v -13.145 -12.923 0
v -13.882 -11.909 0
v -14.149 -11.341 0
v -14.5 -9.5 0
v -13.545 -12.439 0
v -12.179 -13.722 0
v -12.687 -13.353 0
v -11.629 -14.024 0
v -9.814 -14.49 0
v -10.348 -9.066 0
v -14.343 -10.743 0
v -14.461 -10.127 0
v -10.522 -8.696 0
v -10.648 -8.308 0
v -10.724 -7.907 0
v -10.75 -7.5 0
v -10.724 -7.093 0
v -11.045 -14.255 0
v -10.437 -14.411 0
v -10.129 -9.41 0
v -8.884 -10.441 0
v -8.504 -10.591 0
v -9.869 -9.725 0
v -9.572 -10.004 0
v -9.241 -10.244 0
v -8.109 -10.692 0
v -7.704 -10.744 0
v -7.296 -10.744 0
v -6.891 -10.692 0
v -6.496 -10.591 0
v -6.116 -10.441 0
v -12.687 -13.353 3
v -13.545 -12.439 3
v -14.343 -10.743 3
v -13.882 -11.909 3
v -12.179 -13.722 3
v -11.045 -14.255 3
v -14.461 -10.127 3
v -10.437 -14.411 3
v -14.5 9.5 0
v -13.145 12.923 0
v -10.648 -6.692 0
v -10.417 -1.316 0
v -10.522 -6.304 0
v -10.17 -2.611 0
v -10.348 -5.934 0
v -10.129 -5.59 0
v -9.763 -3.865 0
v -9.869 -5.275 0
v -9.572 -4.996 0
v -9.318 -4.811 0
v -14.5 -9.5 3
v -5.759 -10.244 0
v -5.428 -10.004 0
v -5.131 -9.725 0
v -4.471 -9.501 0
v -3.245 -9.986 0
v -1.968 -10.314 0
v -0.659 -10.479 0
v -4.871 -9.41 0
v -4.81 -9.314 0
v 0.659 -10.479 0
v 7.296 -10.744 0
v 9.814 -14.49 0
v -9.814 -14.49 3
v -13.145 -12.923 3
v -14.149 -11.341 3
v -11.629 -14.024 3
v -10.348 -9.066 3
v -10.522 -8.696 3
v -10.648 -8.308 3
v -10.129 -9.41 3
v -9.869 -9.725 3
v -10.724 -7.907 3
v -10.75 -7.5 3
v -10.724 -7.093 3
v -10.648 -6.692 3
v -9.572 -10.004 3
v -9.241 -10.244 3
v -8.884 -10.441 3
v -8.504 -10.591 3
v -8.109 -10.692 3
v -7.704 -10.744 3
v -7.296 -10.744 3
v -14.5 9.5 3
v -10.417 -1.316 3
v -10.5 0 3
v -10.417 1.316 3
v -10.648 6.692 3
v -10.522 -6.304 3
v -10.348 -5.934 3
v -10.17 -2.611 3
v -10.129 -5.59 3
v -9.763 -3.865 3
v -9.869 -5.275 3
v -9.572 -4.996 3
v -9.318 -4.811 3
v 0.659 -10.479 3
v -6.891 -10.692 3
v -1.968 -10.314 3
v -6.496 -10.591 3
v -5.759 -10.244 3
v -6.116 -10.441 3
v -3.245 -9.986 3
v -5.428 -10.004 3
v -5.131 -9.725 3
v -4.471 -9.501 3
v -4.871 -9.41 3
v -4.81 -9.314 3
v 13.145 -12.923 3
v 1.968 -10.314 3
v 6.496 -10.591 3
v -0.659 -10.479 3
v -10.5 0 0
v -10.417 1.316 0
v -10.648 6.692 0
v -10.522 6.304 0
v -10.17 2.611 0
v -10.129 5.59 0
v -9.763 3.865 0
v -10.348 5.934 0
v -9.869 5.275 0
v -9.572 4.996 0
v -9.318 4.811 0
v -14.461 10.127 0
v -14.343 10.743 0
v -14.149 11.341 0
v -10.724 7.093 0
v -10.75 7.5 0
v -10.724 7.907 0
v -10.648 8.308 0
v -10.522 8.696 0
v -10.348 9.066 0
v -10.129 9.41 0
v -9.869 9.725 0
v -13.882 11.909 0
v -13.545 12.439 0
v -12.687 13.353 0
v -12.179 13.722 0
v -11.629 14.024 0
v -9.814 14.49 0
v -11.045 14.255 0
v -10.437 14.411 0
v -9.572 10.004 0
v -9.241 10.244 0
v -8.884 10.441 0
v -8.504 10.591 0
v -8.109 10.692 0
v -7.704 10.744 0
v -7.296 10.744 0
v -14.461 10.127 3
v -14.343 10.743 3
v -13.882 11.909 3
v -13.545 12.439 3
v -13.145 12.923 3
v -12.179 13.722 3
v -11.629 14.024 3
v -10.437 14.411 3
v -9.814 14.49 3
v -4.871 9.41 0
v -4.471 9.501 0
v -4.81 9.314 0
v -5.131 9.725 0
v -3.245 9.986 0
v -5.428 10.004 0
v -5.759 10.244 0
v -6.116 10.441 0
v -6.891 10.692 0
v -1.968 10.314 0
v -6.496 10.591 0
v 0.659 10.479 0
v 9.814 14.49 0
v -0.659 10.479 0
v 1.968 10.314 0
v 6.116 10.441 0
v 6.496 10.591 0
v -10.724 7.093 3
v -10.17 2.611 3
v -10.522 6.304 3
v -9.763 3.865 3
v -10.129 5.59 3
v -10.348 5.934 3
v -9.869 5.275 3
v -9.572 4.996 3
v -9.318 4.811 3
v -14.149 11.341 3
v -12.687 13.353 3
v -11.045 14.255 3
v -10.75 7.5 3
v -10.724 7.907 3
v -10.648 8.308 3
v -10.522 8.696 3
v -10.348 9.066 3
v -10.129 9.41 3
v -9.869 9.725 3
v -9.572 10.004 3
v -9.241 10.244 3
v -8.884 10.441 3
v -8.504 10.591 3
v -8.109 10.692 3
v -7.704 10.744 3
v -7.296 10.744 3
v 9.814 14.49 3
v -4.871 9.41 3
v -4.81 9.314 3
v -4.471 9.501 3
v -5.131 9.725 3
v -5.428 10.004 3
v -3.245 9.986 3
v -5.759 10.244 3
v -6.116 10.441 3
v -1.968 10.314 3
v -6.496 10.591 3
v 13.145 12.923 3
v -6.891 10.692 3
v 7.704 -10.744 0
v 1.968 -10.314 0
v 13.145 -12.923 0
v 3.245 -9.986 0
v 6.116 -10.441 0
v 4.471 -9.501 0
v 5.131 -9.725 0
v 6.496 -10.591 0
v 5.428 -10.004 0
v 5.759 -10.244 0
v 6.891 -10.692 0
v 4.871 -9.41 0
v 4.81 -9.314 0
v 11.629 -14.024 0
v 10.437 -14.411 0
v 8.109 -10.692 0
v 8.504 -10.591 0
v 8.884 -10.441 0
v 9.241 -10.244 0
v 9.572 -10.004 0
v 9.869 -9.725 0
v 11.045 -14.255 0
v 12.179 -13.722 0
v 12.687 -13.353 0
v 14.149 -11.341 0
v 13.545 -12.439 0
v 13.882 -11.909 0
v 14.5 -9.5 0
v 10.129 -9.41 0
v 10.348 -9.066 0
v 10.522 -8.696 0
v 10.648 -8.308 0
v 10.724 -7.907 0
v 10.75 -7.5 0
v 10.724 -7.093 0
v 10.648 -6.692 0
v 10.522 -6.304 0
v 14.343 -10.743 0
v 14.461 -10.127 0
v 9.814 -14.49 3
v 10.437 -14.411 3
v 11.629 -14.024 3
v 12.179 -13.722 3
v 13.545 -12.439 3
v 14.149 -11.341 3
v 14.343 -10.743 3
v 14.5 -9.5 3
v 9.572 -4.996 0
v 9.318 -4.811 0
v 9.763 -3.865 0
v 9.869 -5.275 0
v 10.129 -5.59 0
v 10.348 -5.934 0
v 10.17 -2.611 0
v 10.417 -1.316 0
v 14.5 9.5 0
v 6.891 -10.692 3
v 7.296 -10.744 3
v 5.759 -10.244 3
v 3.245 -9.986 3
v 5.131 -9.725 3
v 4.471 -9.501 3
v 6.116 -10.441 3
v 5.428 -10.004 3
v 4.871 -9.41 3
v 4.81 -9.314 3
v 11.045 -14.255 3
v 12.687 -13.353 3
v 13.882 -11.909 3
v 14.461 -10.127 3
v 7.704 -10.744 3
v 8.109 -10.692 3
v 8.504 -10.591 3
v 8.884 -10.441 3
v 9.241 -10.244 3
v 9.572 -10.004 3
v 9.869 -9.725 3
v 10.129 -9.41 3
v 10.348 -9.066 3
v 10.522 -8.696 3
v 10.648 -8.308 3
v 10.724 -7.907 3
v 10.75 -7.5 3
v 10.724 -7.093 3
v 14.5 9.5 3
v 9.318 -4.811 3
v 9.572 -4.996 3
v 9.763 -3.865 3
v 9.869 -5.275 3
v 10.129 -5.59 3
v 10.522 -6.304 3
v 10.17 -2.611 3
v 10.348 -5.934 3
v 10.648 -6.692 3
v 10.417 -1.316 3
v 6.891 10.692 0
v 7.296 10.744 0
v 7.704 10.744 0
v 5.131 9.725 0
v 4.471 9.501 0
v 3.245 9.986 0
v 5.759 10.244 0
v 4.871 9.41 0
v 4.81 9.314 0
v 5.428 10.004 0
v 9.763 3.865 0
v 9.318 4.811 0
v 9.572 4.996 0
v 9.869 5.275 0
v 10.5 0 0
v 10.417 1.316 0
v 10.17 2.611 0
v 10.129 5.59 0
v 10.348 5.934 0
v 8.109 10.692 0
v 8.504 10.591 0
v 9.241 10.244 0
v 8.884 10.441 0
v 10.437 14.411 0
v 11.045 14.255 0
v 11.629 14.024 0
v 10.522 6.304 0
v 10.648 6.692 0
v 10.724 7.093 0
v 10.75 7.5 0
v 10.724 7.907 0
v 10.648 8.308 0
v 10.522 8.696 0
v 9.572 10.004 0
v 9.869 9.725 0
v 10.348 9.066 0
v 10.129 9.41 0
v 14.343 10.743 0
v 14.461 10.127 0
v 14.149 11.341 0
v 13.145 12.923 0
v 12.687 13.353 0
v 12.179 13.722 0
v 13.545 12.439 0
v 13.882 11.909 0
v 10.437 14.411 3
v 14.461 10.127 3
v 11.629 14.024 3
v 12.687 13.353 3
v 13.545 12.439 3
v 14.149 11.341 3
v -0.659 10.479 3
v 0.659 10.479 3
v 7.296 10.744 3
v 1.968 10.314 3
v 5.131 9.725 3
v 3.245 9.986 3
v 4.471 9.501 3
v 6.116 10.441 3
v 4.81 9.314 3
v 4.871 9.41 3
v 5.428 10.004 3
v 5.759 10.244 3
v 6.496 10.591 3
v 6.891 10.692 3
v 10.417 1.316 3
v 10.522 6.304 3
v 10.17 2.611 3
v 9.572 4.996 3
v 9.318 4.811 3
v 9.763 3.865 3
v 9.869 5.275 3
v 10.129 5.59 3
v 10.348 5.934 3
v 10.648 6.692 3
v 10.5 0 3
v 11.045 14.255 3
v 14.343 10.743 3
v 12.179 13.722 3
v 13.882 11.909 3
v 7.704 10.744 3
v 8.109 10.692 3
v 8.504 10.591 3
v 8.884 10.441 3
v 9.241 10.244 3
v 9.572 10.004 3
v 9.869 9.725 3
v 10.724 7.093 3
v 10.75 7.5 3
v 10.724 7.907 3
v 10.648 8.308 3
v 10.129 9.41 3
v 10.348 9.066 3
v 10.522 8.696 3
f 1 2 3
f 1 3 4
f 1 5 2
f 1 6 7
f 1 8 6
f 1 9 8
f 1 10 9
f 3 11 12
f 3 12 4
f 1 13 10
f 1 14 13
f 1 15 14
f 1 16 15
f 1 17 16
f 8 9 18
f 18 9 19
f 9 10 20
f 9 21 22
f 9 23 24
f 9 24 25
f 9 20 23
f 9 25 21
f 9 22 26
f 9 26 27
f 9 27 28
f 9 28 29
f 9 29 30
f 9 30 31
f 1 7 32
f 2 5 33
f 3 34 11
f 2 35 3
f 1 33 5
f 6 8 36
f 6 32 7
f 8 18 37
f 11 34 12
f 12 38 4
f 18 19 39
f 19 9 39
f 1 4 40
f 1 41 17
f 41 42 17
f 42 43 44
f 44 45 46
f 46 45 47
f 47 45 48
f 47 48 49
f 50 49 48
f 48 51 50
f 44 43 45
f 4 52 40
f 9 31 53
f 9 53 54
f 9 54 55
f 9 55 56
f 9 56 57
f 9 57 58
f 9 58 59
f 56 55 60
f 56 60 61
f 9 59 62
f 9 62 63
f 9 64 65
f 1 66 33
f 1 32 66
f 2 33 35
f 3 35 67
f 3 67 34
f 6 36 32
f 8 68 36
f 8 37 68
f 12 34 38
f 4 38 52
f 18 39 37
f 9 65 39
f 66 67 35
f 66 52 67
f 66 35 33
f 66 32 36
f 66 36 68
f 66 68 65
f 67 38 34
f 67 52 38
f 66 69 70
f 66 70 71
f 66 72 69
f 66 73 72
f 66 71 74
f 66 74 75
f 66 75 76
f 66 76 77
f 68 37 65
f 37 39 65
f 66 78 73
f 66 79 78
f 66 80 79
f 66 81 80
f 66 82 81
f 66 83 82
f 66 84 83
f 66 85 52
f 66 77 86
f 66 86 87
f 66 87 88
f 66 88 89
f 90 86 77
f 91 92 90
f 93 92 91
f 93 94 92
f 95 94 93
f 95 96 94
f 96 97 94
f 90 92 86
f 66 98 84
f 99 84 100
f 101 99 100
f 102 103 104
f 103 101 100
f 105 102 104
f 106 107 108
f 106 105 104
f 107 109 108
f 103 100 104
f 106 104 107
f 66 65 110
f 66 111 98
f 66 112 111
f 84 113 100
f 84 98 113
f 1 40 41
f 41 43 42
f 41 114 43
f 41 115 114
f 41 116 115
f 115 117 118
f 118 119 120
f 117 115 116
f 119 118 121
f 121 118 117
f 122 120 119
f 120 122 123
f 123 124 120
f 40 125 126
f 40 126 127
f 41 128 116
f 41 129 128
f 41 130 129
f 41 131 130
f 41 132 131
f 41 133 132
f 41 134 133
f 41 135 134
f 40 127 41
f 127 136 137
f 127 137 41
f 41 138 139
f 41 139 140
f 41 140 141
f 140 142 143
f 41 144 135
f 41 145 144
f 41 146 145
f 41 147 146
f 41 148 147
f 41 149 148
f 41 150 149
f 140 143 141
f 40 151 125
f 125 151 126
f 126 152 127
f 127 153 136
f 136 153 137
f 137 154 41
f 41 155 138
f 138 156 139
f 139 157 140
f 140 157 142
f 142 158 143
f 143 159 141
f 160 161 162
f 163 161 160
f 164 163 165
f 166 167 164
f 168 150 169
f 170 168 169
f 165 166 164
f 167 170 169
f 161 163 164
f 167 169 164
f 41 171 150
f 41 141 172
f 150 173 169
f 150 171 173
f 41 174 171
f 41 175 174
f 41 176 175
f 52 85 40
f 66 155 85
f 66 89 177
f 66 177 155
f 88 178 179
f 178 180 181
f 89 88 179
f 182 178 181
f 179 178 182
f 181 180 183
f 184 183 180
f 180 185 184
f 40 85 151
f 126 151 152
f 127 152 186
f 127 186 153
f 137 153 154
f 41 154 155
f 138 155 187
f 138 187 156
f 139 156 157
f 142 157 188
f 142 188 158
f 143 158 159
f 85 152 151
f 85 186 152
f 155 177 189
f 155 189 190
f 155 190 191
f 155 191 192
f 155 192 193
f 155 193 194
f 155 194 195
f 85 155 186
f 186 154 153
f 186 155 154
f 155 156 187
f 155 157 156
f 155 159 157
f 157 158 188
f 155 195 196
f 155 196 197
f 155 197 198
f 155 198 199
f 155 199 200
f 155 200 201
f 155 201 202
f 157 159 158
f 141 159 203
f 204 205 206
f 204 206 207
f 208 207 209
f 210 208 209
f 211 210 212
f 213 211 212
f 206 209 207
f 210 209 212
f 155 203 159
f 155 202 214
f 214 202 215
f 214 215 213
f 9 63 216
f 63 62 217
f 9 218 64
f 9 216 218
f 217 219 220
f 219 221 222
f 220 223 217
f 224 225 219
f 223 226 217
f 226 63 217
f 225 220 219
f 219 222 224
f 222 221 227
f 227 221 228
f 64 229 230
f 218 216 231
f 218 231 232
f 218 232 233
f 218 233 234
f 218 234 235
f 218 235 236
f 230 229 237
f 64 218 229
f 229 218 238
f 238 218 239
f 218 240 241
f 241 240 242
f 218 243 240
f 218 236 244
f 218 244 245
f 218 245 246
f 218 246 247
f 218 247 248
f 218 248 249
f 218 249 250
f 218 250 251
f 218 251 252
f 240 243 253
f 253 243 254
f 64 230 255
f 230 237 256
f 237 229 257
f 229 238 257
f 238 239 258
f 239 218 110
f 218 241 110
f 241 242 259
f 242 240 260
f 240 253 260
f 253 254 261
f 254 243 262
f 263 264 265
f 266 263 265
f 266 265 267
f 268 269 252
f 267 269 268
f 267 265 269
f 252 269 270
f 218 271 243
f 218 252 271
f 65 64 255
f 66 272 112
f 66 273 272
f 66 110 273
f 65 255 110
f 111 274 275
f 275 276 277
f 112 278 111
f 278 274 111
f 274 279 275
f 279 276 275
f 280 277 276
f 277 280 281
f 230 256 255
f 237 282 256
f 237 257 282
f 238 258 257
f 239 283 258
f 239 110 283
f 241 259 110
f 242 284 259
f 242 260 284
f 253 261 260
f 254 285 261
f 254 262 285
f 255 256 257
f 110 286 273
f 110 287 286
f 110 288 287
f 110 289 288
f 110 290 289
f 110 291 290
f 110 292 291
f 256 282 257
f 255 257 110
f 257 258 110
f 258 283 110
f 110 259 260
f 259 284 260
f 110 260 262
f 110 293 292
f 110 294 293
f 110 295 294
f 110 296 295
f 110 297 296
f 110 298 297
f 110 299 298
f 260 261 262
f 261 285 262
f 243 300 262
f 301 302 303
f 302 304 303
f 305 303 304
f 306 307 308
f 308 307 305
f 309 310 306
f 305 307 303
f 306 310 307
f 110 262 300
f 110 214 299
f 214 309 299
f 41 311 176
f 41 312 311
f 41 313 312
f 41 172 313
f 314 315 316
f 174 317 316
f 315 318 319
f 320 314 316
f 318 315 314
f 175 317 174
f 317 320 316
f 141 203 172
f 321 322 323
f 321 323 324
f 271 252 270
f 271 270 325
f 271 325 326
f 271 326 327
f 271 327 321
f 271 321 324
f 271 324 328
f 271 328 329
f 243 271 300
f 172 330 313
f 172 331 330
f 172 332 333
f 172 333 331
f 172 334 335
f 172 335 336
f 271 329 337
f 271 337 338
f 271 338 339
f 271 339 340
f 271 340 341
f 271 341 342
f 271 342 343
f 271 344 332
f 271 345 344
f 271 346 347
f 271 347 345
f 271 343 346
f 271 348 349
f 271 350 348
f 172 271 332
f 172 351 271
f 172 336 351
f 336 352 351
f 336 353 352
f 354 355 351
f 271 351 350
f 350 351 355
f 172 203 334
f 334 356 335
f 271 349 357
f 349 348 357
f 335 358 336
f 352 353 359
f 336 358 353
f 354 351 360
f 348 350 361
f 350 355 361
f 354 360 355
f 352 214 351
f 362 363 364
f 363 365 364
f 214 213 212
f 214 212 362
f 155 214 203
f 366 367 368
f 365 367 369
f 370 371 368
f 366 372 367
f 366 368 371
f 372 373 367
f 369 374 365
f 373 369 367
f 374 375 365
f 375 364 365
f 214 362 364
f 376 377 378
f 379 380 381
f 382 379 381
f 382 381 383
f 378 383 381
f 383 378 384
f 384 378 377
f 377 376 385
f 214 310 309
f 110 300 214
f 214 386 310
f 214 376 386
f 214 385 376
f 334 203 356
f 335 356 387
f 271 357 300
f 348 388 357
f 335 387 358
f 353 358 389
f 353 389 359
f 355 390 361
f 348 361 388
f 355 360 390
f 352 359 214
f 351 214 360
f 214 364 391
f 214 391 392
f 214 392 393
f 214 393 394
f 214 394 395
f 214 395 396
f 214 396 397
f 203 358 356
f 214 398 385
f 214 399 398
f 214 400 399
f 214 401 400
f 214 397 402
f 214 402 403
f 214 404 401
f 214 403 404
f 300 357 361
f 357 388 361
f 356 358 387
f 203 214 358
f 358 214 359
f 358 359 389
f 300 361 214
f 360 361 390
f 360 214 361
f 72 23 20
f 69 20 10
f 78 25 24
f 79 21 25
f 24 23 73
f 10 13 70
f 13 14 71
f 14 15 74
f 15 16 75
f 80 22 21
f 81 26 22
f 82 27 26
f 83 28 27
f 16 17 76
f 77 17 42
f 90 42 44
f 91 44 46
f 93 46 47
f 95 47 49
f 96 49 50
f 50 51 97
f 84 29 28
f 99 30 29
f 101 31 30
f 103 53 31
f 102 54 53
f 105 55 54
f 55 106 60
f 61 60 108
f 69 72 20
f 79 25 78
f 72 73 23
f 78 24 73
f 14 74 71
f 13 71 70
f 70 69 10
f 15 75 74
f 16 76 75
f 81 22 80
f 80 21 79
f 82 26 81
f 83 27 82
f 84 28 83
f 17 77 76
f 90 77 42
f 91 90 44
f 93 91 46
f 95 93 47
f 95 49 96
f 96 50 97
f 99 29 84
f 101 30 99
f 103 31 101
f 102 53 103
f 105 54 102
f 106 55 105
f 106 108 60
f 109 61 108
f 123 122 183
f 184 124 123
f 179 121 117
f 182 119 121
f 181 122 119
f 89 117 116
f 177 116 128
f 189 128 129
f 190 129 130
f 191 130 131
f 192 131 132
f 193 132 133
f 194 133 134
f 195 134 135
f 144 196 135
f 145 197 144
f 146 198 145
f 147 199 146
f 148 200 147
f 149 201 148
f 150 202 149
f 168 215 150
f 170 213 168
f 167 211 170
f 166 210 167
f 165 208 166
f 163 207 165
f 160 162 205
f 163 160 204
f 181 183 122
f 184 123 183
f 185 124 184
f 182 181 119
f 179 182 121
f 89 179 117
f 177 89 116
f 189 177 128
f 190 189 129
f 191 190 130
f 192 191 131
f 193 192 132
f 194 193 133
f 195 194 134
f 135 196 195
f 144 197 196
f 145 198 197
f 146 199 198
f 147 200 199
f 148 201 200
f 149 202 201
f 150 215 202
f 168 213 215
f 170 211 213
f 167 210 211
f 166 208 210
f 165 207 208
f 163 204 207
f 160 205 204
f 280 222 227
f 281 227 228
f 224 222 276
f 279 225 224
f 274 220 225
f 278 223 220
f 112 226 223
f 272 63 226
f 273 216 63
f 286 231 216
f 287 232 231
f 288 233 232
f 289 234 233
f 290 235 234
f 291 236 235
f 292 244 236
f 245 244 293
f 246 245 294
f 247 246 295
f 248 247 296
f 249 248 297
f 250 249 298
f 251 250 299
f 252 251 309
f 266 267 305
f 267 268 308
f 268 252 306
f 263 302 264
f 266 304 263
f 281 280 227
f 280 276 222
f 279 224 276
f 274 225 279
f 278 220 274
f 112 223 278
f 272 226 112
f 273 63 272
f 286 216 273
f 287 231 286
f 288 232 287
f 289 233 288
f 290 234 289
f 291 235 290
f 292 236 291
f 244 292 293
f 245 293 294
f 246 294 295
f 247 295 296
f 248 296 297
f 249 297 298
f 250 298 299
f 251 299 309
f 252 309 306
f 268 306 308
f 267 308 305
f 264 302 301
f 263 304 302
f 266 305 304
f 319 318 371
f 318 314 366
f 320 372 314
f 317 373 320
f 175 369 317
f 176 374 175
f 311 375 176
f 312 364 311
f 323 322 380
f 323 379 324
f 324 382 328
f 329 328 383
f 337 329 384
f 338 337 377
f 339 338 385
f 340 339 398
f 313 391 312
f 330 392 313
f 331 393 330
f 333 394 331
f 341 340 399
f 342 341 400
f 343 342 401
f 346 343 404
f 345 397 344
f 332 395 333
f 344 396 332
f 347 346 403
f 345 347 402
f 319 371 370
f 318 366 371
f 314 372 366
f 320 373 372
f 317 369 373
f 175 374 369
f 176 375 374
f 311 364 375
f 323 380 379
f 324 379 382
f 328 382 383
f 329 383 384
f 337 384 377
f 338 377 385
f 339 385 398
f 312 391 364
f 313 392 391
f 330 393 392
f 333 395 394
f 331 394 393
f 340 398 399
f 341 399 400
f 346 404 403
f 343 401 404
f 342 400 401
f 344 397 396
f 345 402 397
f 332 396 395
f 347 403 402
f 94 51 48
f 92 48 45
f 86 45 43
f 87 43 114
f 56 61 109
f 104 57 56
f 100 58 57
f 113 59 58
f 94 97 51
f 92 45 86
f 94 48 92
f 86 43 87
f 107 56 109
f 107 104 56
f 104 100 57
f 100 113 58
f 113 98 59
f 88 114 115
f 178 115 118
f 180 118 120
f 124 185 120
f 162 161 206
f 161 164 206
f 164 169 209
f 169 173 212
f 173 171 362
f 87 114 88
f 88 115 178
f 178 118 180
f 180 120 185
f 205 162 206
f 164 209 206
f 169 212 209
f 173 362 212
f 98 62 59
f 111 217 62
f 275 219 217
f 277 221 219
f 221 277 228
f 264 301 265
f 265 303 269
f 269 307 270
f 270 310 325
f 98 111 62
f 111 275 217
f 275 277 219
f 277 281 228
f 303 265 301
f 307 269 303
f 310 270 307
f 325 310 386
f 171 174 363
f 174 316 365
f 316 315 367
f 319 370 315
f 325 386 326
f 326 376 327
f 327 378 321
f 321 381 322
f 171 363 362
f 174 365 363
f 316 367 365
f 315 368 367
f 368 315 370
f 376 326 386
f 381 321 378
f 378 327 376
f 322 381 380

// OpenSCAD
$fn = 50;

difference() {
	union() {
		hull() {
			translate(v = [-9.5, 9.5, 0]) {
				cylinder(h = 3, r = 5);
			}
			translate(v = [9.5, 9.5, 0]) {
				cylinder(h = 3, r = 5);
			}
			translate(v = [-9.5, -9.5, 0]) {
				cylinder(h = 3, r = 5);
			}
			translate(v = [9.5, -9.5, 0]) {
				cylinder(h = 3, r = 5);
			}
		}
	}
	union() {
		translate(v = [-7.5, -7.5, -100.0]) {
			cylinder(h = 200, r = 3.25);
		}
		translate(v = [-7.5, 7.5, -100.0]) {
			cylinder(h = 200, r = 3.25);
		}
		translate(v = [7.5, -7.5, -100.0]) {
			cylinder(h = 200, r = 3.25);
		}
		translate(v = [7.5, 7.5, -100.0]) {
			cylinder(h = 200, r = 3.25);
		}
		translate(v = [-7.5, -7.5, -100.0]) {
			cylinder(h = 200, r = 1.8);
		}
		translate(v = [-7.5, 7.5, -100.0]) {
			cylinder(h = 200, r = 1.8);
		}
		translate(v = [7.5, -7.5, -100.0]) {
			cylinder(h = 200, r = 1.8);
		}
		translate(v = [7.5, 7.5, -100.0]) {
			cylinder(h = 200, r = 1.8);
		}
		cylinder(h = 3, r = 10.5);
	}
}
